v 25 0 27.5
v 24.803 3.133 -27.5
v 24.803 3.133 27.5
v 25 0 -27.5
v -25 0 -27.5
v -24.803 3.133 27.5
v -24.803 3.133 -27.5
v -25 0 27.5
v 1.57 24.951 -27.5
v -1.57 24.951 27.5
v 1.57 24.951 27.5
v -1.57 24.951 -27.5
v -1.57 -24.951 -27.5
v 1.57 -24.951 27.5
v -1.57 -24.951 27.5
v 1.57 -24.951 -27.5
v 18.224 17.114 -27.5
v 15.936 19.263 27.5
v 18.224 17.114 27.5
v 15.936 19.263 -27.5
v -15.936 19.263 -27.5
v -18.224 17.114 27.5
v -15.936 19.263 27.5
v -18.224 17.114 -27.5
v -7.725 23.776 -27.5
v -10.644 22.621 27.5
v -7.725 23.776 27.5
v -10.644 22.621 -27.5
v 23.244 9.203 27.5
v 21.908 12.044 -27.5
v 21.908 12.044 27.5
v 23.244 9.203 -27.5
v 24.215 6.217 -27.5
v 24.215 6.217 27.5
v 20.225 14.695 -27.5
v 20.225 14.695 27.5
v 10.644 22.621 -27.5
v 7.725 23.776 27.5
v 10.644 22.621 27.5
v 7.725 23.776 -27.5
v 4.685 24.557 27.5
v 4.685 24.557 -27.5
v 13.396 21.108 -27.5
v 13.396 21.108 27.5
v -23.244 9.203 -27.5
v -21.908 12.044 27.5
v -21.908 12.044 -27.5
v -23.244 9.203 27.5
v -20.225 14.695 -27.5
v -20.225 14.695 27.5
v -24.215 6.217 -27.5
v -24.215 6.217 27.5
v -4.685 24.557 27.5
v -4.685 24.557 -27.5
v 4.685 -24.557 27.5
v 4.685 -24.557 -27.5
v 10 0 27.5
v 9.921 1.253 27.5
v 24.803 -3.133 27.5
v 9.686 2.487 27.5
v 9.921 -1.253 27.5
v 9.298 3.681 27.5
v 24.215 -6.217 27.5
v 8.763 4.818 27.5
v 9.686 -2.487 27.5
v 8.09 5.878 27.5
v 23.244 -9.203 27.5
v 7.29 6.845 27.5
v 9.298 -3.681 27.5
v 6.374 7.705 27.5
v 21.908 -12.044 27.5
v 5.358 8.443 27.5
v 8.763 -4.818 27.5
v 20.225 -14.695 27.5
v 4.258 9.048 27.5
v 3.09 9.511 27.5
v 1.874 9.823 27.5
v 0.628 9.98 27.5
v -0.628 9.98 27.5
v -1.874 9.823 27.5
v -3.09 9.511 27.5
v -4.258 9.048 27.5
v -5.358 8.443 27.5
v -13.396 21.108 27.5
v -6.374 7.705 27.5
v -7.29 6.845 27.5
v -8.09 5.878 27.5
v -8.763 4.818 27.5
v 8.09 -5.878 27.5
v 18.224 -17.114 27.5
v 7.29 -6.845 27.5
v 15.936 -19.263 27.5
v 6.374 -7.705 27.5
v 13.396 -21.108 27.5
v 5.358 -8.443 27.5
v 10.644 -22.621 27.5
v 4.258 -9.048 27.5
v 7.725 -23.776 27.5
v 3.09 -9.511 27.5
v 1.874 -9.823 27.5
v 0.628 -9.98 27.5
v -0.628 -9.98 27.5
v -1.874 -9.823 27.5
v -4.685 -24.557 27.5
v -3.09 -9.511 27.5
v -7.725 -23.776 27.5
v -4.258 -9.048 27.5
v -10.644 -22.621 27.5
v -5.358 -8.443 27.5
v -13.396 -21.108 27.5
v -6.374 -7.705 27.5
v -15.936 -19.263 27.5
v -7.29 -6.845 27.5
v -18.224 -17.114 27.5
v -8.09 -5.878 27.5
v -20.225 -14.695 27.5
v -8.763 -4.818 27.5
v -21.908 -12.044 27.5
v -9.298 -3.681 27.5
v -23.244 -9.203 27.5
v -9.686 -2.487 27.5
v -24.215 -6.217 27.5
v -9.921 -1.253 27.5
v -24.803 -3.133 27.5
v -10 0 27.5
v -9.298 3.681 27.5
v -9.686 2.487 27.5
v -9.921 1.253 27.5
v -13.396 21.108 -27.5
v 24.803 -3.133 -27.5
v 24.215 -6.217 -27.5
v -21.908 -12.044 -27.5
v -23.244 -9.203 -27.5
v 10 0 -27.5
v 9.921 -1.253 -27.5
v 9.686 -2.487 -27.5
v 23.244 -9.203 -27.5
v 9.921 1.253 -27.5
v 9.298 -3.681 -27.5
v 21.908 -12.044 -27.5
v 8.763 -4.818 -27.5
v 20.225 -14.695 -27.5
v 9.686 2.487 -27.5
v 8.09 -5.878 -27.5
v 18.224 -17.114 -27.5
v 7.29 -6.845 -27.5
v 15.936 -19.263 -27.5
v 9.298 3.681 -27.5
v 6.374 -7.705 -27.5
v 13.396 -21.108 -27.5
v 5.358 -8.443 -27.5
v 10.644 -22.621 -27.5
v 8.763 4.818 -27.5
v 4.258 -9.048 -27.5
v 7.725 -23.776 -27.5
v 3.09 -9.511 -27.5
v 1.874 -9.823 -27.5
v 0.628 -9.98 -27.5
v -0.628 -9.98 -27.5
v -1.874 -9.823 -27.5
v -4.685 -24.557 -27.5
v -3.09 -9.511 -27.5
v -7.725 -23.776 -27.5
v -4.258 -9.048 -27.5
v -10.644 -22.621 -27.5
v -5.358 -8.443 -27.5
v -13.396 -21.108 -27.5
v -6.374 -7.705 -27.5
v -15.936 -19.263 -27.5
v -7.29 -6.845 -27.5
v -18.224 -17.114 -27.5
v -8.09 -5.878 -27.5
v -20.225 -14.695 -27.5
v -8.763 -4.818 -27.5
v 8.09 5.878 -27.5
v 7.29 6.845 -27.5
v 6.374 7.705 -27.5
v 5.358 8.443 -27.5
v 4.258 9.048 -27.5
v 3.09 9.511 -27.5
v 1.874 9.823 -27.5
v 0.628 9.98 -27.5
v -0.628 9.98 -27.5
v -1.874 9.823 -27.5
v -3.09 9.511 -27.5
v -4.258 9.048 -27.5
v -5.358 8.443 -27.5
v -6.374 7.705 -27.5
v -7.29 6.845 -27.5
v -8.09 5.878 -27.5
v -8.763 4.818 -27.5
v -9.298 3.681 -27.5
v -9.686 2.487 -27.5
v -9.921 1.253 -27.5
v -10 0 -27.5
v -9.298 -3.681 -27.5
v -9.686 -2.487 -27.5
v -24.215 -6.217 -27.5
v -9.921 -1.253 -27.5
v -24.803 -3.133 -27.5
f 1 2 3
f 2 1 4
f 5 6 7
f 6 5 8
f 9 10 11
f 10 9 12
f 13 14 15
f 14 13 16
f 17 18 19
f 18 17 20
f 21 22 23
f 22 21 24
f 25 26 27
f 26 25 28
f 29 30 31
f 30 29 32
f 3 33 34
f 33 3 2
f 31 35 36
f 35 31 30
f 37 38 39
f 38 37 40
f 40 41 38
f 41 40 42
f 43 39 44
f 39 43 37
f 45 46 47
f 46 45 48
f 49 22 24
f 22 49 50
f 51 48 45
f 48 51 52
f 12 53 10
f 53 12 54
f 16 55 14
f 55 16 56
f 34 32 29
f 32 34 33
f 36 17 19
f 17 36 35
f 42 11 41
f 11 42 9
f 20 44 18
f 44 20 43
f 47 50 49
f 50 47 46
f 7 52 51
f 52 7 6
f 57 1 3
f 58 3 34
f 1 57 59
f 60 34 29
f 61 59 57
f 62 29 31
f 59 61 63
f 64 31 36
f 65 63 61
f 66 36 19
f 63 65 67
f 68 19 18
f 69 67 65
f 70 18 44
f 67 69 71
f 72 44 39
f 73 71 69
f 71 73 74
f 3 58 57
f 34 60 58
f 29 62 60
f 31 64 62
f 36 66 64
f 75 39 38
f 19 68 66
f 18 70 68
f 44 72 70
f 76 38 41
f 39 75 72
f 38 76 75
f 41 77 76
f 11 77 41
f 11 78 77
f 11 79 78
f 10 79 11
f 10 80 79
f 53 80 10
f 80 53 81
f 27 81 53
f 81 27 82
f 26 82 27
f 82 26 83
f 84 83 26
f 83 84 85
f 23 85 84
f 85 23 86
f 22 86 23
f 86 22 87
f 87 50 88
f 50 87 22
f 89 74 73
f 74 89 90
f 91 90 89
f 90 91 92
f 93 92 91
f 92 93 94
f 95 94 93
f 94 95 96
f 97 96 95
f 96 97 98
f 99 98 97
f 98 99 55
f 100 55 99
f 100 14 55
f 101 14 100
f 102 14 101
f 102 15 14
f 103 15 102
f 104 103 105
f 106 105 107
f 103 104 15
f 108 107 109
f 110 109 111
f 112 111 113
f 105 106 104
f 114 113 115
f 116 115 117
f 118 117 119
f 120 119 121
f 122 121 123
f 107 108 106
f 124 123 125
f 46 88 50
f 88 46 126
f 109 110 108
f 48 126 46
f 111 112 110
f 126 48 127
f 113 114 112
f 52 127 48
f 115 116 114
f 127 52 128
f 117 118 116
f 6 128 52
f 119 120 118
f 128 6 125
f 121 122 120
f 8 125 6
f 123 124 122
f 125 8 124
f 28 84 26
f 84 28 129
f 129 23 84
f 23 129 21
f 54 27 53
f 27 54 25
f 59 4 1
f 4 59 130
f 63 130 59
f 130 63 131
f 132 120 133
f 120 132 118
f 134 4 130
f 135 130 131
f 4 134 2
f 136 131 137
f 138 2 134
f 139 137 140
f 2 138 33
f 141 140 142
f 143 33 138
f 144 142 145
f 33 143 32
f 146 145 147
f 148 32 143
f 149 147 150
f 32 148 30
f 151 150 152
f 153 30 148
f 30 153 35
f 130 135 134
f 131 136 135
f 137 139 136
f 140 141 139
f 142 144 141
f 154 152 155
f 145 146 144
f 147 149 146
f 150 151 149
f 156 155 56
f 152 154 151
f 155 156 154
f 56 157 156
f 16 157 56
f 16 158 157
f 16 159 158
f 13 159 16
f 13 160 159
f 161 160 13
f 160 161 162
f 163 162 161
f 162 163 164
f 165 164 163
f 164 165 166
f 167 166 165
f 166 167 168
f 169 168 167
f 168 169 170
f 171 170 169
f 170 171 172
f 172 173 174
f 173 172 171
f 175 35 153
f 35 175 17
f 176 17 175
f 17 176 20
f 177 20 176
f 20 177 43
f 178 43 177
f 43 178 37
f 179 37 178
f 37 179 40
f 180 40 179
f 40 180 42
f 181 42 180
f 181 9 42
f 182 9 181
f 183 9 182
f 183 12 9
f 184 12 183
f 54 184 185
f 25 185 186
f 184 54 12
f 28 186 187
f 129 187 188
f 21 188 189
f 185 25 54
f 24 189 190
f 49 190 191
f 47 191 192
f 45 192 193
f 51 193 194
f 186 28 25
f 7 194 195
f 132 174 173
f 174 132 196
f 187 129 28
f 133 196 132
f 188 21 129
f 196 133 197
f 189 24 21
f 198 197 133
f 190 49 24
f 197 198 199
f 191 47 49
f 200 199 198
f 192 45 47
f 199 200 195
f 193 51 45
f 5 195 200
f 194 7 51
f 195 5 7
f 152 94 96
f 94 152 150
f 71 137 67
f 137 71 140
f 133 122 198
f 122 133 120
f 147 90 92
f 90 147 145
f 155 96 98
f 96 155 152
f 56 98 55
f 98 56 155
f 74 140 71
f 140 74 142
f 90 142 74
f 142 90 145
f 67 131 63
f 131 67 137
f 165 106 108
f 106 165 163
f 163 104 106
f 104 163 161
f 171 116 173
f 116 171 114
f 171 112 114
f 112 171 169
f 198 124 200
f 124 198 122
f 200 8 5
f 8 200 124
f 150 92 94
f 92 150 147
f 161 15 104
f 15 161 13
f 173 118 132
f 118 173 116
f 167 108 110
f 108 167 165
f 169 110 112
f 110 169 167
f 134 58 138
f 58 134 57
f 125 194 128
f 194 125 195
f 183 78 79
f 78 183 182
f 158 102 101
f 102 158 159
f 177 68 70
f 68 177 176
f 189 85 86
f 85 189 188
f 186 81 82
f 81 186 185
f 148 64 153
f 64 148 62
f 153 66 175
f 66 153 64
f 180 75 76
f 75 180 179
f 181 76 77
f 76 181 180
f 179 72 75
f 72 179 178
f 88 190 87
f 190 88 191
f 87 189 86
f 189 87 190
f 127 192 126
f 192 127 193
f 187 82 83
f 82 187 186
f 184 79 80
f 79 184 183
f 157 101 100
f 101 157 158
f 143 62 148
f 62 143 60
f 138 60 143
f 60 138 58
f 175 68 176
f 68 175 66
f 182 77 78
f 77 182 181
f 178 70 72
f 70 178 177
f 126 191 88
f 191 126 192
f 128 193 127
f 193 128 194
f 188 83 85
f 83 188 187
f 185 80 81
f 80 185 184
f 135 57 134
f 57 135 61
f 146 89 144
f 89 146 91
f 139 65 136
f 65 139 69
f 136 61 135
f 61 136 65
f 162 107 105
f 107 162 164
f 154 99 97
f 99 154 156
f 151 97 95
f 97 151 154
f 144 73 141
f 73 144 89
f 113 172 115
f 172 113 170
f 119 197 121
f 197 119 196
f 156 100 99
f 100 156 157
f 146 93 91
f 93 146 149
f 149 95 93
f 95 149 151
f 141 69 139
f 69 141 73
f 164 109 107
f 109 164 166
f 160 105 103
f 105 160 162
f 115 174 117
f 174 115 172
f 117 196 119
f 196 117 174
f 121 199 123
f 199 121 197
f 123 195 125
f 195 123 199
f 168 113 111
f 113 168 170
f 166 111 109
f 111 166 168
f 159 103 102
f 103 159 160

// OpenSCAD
$fn = 50;


difference() {
	union() {
		translate(v = [0, 0, -27.5000000000]) {
			cylinder(h = 55, r = 25.0000000000);
		}
	}
	union() {
		translate(v = [0, 0, -100.0000000000]) {
			cylinder(h = 200, r = 10);
		}
	}
}
